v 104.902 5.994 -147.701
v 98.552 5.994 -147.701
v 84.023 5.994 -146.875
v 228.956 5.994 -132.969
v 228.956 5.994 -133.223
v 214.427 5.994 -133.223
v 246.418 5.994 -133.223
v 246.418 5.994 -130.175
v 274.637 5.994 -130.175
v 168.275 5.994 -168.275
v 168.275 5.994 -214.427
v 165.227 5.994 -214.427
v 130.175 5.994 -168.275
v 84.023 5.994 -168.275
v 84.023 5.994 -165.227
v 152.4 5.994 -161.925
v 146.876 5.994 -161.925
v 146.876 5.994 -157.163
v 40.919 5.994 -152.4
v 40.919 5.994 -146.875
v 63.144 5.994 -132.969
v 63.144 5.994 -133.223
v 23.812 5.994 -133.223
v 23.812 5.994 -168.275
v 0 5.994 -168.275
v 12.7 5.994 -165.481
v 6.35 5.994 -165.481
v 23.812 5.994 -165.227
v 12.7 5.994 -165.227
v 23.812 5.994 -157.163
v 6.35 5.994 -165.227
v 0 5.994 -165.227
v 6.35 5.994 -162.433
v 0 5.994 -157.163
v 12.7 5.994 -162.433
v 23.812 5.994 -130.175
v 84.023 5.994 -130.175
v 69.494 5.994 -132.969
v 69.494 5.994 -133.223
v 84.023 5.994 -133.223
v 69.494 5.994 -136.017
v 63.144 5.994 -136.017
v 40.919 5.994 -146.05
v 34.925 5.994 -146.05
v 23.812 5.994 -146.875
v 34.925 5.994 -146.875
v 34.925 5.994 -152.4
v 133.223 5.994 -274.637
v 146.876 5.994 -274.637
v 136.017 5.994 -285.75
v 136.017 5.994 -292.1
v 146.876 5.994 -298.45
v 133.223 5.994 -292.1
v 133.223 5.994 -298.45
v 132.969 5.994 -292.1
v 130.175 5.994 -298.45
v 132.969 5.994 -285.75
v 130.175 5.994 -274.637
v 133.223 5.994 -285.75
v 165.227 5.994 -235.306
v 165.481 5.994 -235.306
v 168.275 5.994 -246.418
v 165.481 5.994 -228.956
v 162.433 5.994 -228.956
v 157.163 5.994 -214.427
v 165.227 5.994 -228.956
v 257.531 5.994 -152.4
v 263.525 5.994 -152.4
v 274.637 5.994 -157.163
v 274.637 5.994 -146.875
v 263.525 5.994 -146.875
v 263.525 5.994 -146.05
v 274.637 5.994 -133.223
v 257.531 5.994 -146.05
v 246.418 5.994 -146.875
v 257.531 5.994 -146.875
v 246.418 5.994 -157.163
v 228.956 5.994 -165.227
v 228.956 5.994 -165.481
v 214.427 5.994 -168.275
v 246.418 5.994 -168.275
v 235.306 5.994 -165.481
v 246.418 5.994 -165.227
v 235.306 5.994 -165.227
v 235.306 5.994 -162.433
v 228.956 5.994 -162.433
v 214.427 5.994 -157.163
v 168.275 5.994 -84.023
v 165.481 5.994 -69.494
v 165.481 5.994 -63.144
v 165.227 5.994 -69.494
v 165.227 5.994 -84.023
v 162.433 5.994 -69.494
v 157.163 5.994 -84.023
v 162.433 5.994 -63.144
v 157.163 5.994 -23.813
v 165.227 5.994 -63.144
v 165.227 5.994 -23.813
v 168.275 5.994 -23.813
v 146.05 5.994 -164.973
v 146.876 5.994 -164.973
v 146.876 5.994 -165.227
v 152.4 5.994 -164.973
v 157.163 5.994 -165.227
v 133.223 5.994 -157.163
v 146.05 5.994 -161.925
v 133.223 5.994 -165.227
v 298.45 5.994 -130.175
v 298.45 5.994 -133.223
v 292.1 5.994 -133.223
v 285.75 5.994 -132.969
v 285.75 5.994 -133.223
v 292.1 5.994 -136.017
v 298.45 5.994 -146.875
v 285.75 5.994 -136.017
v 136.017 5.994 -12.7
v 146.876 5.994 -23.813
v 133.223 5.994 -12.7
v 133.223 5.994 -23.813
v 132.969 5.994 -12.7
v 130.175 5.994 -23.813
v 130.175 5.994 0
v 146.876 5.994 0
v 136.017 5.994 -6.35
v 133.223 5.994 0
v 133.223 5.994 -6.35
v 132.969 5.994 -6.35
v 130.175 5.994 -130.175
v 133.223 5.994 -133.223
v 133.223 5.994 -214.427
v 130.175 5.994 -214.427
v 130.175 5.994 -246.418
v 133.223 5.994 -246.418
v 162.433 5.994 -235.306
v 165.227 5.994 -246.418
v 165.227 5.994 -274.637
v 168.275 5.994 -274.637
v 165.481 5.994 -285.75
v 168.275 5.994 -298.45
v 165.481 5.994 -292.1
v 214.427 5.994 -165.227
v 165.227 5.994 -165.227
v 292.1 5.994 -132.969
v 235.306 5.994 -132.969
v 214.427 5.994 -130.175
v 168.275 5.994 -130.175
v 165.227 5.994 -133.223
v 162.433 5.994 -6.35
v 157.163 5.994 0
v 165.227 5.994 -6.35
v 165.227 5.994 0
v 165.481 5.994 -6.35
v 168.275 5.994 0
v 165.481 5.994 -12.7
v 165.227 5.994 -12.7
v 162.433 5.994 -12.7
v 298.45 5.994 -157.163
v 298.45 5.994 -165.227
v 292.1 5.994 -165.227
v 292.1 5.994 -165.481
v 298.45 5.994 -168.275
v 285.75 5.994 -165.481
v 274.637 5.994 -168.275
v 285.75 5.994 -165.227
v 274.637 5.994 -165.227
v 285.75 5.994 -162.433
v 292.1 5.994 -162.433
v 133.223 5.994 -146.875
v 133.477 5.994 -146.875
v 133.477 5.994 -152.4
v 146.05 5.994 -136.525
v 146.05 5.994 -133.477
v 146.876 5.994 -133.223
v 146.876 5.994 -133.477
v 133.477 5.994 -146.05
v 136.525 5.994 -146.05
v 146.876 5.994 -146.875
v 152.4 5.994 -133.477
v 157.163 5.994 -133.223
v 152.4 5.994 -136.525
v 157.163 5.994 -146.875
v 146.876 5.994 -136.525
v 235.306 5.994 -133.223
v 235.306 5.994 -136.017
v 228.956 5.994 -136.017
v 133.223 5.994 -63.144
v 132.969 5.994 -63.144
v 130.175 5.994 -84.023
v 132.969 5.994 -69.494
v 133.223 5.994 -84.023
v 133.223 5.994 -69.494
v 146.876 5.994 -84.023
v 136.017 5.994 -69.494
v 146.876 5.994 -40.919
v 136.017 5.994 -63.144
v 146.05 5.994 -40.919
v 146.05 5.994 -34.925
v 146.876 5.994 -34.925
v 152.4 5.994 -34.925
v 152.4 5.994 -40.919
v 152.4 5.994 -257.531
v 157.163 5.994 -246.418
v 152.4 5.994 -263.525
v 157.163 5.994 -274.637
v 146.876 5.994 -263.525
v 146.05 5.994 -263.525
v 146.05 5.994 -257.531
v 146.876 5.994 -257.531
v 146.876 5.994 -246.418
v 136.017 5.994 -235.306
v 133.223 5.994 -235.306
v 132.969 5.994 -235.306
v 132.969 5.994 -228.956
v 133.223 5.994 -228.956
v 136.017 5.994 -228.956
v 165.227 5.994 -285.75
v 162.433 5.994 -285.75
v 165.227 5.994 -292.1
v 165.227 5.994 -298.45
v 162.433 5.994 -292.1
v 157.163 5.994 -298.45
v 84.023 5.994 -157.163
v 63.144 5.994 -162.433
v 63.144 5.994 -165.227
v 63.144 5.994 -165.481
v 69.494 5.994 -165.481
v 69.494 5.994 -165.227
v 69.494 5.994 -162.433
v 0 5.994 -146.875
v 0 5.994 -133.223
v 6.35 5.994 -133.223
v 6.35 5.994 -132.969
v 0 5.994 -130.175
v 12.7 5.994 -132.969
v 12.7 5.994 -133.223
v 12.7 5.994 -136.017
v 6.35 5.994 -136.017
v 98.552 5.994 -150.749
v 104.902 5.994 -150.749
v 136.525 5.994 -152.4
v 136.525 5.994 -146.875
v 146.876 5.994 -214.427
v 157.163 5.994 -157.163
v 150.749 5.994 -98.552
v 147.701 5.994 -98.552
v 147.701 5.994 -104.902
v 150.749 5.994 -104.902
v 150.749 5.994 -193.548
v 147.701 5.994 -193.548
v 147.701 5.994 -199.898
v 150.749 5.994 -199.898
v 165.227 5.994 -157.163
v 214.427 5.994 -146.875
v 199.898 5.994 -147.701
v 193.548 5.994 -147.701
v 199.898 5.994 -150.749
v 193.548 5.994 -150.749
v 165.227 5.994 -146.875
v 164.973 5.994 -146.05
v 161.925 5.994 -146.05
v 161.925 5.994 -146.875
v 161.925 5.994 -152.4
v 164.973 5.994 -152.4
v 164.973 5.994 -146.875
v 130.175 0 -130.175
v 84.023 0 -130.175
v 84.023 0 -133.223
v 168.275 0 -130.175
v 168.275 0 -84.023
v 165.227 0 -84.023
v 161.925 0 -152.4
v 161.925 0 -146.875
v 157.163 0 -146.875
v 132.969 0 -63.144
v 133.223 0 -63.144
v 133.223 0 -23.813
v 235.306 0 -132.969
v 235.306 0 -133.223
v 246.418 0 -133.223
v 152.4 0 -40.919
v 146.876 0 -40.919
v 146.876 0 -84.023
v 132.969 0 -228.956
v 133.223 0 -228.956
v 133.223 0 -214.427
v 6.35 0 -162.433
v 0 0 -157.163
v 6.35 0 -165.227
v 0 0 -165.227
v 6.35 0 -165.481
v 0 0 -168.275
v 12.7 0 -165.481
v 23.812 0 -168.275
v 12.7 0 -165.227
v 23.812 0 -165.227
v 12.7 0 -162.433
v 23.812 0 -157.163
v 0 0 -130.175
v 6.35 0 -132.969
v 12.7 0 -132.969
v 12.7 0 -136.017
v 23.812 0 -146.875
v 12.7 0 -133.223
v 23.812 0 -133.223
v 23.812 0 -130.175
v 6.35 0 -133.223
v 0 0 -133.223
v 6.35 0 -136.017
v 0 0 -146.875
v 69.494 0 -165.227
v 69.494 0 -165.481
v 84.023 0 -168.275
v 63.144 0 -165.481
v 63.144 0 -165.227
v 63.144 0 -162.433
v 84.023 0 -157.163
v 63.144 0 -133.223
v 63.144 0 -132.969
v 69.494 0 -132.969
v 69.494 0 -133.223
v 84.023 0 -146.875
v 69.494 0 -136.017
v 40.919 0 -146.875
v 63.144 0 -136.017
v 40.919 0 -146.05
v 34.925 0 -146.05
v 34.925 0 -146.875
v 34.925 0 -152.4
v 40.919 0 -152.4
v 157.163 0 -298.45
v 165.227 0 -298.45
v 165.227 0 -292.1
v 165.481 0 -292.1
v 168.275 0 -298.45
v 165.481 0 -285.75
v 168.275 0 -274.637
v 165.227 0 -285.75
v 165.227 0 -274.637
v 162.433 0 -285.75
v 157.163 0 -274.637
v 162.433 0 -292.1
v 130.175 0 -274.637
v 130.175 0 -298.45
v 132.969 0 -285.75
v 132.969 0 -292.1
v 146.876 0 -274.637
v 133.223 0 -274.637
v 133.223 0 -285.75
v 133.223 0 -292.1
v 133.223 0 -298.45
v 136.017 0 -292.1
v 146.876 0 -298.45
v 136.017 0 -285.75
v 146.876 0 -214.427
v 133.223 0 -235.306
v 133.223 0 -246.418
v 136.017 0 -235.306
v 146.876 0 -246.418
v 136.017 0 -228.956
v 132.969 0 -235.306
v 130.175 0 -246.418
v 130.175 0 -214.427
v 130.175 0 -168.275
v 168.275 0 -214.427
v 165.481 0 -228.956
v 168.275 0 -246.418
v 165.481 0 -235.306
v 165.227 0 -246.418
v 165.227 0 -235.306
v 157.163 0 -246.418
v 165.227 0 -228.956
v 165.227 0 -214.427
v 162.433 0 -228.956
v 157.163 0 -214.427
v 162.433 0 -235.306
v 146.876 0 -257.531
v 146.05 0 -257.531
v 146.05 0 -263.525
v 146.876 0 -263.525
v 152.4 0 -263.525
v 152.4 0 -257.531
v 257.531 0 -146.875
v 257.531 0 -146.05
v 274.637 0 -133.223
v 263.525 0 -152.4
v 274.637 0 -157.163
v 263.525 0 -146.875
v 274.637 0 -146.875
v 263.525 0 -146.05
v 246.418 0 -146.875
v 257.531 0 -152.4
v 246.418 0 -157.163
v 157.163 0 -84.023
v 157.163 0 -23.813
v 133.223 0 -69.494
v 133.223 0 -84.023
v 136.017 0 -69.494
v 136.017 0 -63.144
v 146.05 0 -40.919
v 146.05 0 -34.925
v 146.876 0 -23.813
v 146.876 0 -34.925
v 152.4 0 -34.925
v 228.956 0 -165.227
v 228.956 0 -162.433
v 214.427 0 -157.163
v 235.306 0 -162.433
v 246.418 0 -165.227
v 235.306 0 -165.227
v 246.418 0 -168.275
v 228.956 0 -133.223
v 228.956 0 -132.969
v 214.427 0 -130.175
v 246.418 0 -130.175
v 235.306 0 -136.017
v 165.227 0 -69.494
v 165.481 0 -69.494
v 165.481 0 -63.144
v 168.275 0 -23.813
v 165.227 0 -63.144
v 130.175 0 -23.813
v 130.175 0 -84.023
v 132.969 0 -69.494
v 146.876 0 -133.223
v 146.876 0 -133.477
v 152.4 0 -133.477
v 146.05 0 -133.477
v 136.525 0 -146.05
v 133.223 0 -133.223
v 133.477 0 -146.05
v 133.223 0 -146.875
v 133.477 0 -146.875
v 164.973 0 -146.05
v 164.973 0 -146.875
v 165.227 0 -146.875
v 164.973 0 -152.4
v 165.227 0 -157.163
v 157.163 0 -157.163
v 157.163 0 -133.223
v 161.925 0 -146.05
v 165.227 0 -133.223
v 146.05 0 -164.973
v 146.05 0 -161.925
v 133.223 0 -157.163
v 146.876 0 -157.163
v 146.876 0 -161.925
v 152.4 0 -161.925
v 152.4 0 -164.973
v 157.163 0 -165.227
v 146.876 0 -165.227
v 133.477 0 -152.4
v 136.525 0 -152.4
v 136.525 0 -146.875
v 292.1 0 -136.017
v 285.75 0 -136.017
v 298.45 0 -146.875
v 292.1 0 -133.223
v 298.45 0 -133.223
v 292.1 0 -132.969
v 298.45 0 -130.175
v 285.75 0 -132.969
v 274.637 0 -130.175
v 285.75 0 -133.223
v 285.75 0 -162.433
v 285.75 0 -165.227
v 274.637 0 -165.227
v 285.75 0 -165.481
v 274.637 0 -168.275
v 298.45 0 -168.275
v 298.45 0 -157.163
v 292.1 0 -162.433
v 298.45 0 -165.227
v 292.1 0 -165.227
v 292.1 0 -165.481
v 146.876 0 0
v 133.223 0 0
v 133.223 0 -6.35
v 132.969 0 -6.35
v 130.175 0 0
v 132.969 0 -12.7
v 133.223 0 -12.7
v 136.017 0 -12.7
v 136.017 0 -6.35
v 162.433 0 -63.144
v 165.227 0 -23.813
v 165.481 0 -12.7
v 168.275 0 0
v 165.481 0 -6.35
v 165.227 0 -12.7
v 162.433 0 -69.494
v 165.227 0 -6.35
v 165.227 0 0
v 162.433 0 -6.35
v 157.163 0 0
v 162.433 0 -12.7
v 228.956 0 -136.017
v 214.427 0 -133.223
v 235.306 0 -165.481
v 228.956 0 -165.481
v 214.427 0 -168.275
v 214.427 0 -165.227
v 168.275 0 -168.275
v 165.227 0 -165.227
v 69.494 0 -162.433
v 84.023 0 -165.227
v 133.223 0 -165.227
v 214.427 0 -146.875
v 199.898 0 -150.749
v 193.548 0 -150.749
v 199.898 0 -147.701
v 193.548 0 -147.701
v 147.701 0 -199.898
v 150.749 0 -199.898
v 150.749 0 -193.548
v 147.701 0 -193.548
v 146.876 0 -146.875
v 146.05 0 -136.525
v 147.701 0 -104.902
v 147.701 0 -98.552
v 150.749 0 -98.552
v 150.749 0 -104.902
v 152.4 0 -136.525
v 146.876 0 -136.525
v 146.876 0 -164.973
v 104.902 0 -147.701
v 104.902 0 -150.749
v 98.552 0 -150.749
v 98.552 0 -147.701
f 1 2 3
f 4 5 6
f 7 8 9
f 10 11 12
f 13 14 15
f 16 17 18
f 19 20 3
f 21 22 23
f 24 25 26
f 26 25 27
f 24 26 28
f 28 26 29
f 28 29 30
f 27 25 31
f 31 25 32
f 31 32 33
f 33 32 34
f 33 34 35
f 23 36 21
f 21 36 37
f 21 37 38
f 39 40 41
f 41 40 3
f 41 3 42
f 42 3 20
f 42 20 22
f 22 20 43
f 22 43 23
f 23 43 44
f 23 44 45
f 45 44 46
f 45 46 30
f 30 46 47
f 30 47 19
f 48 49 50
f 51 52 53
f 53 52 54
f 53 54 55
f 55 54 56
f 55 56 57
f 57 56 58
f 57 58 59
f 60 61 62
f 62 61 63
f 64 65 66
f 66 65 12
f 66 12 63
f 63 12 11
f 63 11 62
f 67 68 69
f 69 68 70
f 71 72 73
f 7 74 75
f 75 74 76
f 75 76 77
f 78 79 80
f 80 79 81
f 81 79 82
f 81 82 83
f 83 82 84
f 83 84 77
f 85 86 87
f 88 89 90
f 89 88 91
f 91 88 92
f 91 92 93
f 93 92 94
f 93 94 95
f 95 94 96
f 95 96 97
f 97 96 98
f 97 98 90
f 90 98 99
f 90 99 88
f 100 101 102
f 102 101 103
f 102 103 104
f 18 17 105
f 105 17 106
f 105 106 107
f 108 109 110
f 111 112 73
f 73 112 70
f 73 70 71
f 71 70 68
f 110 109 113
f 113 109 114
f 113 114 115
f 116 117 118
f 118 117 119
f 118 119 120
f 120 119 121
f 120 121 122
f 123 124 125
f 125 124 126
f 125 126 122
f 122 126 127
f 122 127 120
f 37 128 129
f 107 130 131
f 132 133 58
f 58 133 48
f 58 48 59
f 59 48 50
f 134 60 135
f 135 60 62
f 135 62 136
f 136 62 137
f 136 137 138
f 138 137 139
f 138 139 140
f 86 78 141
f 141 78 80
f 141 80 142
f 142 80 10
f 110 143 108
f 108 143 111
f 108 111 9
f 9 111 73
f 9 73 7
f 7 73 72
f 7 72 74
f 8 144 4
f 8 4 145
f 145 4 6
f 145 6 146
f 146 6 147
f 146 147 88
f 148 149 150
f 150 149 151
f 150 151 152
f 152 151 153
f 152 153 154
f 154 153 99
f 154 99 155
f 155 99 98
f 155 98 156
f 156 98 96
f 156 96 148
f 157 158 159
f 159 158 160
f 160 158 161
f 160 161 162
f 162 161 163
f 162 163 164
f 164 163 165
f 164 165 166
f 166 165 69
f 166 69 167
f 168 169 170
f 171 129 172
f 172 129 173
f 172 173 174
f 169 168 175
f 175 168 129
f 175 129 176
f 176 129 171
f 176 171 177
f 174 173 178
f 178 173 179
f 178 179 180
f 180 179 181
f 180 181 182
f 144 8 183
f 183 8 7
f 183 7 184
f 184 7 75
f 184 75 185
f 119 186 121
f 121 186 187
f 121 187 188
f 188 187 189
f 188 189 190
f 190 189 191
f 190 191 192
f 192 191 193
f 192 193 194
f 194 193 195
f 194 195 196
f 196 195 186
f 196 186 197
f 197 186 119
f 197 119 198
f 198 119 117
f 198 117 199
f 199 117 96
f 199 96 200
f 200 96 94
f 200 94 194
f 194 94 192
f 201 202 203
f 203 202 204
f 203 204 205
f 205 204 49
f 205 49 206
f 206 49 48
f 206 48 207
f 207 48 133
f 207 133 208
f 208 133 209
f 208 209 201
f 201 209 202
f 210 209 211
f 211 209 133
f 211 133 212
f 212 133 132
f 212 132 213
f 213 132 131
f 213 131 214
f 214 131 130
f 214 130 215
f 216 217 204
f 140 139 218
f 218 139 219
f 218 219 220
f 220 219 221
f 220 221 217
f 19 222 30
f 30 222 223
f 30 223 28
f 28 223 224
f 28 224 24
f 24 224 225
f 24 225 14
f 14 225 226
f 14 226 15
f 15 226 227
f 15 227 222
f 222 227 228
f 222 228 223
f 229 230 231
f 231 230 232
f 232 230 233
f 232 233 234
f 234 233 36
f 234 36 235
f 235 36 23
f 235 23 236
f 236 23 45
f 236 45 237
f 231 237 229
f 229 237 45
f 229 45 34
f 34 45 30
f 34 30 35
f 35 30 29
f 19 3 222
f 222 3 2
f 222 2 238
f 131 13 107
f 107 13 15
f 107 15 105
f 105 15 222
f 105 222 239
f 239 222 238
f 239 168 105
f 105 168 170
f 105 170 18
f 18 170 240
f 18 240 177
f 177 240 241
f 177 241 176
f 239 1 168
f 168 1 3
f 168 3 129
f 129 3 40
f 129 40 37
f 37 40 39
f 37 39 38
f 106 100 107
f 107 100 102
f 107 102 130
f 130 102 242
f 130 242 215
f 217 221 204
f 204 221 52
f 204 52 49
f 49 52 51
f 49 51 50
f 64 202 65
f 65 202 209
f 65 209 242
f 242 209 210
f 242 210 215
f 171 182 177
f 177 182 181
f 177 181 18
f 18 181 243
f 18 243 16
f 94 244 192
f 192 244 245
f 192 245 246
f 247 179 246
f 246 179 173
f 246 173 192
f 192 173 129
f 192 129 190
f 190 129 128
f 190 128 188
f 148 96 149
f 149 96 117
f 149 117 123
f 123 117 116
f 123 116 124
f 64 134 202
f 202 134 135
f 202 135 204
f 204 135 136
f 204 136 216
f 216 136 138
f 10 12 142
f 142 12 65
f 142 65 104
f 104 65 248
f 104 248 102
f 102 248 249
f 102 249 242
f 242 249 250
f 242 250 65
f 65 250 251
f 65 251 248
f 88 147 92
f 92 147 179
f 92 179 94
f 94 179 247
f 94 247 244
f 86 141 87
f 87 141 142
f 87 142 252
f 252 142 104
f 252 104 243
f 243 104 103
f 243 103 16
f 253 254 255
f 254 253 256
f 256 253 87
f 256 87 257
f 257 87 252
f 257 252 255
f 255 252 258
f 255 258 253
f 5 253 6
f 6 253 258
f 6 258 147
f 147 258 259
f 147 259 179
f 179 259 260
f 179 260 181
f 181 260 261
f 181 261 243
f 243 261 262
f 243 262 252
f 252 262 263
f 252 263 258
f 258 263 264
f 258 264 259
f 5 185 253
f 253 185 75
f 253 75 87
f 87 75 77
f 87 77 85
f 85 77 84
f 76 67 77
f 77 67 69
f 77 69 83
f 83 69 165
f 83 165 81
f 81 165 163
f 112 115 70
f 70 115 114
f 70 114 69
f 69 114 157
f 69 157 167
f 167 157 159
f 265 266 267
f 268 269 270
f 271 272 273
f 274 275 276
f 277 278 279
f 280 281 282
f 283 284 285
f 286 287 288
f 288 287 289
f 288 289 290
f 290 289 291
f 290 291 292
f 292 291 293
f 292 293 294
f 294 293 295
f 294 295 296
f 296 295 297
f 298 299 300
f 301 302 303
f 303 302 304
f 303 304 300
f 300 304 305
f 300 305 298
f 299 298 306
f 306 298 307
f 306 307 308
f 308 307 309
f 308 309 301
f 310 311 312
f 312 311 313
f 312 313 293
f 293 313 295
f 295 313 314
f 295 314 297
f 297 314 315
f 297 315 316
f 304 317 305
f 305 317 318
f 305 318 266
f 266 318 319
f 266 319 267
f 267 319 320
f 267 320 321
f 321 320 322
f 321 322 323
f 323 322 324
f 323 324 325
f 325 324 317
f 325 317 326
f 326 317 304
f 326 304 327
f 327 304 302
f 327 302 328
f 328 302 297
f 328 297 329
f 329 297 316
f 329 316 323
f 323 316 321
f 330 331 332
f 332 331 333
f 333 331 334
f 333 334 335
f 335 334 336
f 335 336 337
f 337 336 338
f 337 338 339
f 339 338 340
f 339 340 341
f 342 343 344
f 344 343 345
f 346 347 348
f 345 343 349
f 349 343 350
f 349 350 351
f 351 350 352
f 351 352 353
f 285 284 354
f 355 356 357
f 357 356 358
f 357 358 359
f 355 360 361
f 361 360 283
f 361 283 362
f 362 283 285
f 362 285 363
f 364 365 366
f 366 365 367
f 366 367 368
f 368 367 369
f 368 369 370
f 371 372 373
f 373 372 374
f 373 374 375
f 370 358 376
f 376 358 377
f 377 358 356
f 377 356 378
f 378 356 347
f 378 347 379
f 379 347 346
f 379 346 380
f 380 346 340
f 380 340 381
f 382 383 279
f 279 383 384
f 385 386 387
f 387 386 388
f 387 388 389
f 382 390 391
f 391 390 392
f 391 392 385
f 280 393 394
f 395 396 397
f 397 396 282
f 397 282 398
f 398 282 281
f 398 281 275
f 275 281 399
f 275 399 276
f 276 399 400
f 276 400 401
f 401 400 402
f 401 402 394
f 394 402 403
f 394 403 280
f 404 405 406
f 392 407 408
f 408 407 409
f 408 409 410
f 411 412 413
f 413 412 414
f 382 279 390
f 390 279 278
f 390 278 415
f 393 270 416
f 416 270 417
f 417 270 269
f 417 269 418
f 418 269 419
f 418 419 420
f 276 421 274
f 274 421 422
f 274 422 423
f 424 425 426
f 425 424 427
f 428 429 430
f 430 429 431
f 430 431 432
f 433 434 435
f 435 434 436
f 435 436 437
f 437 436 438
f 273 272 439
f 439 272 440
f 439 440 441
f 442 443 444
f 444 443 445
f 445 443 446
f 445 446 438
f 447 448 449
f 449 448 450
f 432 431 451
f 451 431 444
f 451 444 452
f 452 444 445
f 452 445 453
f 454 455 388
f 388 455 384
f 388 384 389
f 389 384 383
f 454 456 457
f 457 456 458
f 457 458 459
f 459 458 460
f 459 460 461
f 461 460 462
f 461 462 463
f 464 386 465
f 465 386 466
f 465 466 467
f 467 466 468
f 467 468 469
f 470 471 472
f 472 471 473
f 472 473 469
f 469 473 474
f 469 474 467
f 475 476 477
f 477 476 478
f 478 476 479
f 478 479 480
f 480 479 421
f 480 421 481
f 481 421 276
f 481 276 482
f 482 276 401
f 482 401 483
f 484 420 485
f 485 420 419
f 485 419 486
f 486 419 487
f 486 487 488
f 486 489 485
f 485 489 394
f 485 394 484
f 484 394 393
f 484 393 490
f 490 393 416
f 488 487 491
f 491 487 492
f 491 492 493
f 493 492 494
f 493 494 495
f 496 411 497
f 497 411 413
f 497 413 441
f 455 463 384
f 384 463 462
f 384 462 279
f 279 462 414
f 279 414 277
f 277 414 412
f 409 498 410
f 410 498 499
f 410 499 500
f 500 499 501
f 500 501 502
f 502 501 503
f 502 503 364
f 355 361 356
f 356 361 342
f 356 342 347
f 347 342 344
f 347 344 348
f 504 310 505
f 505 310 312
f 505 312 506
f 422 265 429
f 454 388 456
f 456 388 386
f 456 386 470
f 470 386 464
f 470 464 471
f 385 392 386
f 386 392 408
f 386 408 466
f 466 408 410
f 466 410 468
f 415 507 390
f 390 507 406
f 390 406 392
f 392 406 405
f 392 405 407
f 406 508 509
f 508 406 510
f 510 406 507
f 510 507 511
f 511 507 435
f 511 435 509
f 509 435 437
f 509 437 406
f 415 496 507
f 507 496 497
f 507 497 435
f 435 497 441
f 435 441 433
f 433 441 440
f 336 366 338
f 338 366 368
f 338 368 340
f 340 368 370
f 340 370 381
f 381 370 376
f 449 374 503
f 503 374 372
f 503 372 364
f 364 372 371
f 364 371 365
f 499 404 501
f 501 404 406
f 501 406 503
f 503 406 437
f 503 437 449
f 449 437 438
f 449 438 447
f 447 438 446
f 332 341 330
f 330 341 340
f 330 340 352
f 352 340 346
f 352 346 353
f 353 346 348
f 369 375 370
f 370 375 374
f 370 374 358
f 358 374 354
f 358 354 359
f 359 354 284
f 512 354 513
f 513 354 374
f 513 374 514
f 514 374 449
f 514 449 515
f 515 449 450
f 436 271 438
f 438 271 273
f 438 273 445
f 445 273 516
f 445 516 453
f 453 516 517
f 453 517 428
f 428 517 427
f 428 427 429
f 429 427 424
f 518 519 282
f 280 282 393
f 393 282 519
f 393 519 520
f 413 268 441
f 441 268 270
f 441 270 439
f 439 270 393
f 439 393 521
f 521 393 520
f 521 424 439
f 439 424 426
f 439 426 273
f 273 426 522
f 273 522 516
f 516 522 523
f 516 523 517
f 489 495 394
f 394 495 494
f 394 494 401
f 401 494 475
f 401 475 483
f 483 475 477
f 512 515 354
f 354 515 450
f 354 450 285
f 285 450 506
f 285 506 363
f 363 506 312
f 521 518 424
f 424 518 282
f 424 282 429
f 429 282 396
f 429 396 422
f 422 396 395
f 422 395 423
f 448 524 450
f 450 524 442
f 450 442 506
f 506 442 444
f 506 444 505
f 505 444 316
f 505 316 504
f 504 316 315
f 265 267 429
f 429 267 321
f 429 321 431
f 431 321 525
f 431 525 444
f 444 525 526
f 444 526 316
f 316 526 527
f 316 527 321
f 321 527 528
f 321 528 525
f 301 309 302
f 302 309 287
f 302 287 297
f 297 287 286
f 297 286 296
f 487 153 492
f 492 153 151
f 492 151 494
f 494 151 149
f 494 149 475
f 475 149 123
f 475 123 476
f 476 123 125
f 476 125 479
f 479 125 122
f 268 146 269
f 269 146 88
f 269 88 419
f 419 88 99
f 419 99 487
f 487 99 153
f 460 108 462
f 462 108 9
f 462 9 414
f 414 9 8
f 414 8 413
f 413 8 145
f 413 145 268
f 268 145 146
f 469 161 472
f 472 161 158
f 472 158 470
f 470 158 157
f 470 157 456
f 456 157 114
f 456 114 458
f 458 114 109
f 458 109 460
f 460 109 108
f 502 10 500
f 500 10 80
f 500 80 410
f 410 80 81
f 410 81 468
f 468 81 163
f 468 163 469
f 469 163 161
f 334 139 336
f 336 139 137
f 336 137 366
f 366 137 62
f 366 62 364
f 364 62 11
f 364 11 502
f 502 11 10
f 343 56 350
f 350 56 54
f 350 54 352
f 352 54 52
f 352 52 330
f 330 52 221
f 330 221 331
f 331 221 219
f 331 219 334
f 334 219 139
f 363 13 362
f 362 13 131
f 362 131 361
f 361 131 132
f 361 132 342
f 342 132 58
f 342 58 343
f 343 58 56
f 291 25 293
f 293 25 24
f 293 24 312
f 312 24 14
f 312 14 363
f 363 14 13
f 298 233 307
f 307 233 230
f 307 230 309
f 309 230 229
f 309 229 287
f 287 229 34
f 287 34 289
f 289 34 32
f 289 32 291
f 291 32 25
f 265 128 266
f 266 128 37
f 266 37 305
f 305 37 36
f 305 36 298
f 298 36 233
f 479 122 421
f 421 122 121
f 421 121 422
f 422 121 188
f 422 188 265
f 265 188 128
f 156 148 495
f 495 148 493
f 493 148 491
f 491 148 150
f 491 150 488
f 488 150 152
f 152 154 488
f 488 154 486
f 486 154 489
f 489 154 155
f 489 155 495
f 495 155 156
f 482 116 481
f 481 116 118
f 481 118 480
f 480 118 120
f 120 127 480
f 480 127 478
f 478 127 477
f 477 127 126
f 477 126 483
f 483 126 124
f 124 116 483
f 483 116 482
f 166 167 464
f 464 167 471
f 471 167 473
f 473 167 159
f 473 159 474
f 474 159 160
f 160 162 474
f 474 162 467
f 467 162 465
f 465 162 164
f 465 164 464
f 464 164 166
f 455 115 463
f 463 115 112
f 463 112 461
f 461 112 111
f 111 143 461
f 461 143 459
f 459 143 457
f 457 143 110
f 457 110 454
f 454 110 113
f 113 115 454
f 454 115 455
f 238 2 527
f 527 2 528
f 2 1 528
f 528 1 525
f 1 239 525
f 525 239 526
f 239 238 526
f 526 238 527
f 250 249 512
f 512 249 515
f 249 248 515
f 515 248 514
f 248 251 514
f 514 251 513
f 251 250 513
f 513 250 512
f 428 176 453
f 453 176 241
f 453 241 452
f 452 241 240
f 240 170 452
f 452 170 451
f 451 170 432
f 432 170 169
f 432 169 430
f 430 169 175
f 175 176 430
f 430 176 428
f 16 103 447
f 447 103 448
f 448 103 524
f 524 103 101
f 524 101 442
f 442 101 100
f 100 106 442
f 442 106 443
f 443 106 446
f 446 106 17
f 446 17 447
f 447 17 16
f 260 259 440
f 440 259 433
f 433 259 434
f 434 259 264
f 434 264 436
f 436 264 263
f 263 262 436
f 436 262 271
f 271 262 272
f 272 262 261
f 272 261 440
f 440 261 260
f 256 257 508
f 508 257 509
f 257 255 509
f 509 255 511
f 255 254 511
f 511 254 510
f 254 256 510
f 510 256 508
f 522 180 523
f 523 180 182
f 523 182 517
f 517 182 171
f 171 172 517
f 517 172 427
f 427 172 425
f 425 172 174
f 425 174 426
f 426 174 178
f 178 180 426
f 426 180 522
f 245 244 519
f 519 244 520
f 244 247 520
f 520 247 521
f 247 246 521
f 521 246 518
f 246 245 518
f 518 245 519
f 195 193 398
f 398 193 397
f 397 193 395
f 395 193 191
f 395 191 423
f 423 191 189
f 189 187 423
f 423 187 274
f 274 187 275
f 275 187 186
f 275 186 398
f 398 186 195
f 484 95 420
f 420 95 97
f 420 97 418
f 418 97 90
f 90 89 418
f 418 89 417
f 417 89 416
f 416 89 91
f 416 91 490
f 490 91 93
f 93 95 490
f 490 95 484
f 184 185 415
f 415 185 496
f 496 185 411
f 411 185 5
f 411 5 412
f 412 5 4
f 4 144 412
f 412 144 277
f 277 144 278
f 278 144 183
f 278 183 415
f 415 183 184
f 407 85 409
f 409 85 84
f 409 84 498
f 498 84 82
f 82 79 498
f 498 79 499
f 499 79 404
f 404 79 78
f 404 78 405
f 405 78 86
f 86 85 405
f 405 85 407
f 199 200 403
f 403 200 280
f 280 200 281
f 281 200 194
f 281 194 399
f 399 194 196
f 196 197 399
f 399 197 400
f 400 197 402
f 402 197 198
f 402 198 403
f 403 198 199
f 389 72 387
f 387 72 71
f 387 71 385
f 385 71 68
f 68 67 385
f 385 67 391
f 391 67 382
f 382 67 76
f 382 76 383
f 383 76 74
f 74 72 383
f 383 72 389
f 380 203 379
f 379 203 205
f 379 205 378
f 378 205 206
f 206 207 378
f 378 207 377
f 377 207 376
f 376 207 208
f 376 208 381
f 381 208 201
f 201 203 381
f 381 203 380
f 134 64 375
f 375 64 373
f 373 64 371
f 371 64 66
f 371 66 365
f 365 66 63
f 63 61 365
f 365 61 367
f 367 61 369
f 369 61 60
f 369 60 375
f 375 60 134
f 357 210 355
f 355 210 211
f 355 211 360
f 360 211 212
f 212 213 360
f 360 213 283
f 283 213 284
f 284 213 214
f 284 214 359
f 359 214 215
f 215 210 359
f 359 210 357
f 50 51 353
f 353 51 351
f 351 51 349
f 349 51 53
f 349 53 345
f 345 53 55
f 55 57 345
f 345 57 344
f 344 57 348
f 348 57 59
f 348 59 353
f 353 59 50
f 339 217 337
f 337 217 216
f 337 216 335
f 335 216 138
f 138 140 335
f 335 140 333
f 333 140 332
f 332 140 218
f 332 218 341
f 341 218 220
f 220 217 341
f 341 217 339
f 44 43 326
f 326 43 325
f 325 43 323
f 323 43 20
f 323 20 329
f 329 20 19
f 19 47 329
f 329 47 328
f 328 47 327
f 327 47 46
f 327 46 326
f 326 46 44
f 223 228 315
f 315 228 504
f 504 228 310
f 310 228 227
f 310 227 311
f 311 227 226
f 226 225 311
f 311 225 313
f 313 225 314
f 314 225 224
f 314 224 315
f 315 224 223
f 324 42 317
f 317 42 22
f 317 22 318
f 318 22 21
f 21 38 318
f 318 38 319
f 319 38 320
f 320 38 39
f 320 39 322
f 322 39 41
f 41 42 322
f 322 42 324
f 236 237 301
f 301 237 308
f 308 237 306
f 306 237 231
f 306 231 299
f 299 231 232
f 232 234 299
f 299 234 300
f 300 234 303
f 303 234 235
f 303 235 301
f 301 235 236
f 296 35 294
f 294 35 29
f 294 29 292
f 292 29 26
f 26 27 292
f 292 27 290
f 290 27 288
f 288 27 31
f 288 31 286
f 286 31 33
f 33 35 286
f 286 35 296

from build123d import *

# Parameters (mm, degrees)
SKETCH1_W           = 3.048
SKETCH1_H           = 6.35
SKETCH1_W_2         = 6.35
SKETCH1_H_2         = 3.048
SKETCH1_W_3         = 5.9944
SKETCH1_H_3         = 5.9944
BOSS_EXTRUDE1_DEPTH = 5.9944


with BuildPart() as part:
    # Sketch1 → Boss-Extrude1 (new body)
    with BuildSketch(Plane(origin=(0, 0, 0), x_dir=(1, 0, 0), z_dir=(0, 1, 0))):
        Polygon((130.175, 0), (130.175, 130.175), (0, 130.175), (0, 168.275), (130.175, 168.275), (130.175, 298.45), (168.275, 298.45), (168.275, 168.275), (298.45, 168.275), (298.45, 130.175), (168.275, 130.175), (168.275, 0), align=None)
        with Locations((163.957, 9.525)):
            Rectangle(SKETCH1_W, SKETCH1_H, mode=Mode.SUBTRACT)
        with Locations((134.493, 9.525)):
            Rectangle(SKETCH1_W, SKETCH1_H, mode=Mode.SUBTRACT)
        with Locations((288.925, 163.957)):
            Rectangle(SKETCH1_W_2, SKETCH1_H_2, mode=Mode.SUBTRACT)
        with Locations((288.925, 134.493)):
            Rectangle(SKETCH1_W_2, SKETCH1_H_2, mode=Mode.SUBTRACT)
        with Locations((149.225, 196.723)):
            Rectangle(SKETCH1_W, SKETCH1_H, mode=Mode.SUBTRACT)
        with Locations((101.727, 149.225)):
            Rectangle(SKETCH1_W_2, SKETCH1_H_2, mode=Mode.SUBTRACT)
        with Locations((149.225, 163.449)):
            Rectangle(SKETCH1_W_2, SKETCH1_H_2, mode=Mode.SUBTRACT)
        with Locations((135.001, 149.225)):
            Rectangle(SKETCH1_W, SKETCH1_H, mode=Mode.SUBTRACT)
        with Locations((163.449, 149.225)):
            Rectangle(SKETCH1_W, SKETCH1_H, mode=Mode.SUBTRACT)
        with Locations((196.723, 149.225)):
            Rectangle(SKETCH1_W_2, SKETCH1_H_2, mode=Mode.SUBTRACT)
        with Locations((149.225, 135.001)):
            Rectangle(SKETCH1_W_2, SKETCH1_H_2, mode=Mode.SUBTRACT)
        with Locations((149.225, 101.727)):
            Rectangle(SKETCH1_W, SKETCH1_H, mode=Mode.SUBTRACT)
        with Locations((134.493, 66.3194)):
            Rectangle(SKETCH1_W, SKETCH1_H, mode=Mode.SUBTRACT)
        with Locations((163.957, 66.3194)):
            Rectangle(SKETCH1_W, SKETCH1_H, mode=Mode.SUBTRACT)
        with Locations((232.1306, 134.493)):
            Rectangle(SKETCH1_W_2, SKETCH1_H_2, mode=Mode.SUBTRACT)
        with Locations((232.1306, 163.957)):
            Rectangle(SKETCH1_W_2, SKETCH1_H_2, mode=Mode.SUBTRACT)
        with Locations((260.5278, 149.225)):
            Rectangle(SKETCH1_W_3, SKETCH1_H, mode=Mode.SUBTRACT)
        with Locations((149.225, 37.9222)):
            Rectangle(SKETCH1_W_2, SKETCH1_H_3, mode=Mode.SUBTRACT)
        with Locations((149.225, 260.5278)):
            Rectangle(SKETCH1_W_2, SKETCH1_H_3, mode=Mode.SUBTRACT)
        with Locations((163.957, 232.1306)):
            Rectangle(SKETCH1_W, SKETCH1_H, mode=Mode.SUBTRACT)
        with Locations((134.493, 232.1306)):
            Rectangle(SKETCH1_W, SKETCH1_H, mode=Mode.SUBTRACT)
        with Locations((134.493, 288.925)):
            Rectangle(SKETCH1_W, SKETCH1_H, mode=Mode.SUBTRACT)
        with Locations((163.957, 288.925)):
            Rectangle(SKETCH1_W, SKETCH1_H, mode=Mode.SUBTRACT)
        with Locations((37.9222, 149.225)):
            Rectangle(SKETCH1_W_3, SKETCH1_H, mode=Mode.SUBTRACT)
        with Locations((66.3194, 163.957)):
            Rectangle(SKETCH1_W_2, SKETCH1_H_2, mode=Mode.SUBTRACT)
        with Locations((66.3194, 134.493)):
            Rectangle(SKETCH1_W_2, SKETCH1_H_2, mode=Mode.SUBTRACT)
        with Locations((9.525, 134.493)):
            Rectangle(SKETCH1_W_2, SKETCH1_H_2, mode=Mode.SUBTRACT)
        with Locations((9.525, 163.957)):
            Rectangle(SKETCH1_W_2, SKETCH1_H_2, mode=Mode.SUBTRACT)
    extrude(amount=BOSS_EXTRUDE1_DEPTH)


solid = part.part
